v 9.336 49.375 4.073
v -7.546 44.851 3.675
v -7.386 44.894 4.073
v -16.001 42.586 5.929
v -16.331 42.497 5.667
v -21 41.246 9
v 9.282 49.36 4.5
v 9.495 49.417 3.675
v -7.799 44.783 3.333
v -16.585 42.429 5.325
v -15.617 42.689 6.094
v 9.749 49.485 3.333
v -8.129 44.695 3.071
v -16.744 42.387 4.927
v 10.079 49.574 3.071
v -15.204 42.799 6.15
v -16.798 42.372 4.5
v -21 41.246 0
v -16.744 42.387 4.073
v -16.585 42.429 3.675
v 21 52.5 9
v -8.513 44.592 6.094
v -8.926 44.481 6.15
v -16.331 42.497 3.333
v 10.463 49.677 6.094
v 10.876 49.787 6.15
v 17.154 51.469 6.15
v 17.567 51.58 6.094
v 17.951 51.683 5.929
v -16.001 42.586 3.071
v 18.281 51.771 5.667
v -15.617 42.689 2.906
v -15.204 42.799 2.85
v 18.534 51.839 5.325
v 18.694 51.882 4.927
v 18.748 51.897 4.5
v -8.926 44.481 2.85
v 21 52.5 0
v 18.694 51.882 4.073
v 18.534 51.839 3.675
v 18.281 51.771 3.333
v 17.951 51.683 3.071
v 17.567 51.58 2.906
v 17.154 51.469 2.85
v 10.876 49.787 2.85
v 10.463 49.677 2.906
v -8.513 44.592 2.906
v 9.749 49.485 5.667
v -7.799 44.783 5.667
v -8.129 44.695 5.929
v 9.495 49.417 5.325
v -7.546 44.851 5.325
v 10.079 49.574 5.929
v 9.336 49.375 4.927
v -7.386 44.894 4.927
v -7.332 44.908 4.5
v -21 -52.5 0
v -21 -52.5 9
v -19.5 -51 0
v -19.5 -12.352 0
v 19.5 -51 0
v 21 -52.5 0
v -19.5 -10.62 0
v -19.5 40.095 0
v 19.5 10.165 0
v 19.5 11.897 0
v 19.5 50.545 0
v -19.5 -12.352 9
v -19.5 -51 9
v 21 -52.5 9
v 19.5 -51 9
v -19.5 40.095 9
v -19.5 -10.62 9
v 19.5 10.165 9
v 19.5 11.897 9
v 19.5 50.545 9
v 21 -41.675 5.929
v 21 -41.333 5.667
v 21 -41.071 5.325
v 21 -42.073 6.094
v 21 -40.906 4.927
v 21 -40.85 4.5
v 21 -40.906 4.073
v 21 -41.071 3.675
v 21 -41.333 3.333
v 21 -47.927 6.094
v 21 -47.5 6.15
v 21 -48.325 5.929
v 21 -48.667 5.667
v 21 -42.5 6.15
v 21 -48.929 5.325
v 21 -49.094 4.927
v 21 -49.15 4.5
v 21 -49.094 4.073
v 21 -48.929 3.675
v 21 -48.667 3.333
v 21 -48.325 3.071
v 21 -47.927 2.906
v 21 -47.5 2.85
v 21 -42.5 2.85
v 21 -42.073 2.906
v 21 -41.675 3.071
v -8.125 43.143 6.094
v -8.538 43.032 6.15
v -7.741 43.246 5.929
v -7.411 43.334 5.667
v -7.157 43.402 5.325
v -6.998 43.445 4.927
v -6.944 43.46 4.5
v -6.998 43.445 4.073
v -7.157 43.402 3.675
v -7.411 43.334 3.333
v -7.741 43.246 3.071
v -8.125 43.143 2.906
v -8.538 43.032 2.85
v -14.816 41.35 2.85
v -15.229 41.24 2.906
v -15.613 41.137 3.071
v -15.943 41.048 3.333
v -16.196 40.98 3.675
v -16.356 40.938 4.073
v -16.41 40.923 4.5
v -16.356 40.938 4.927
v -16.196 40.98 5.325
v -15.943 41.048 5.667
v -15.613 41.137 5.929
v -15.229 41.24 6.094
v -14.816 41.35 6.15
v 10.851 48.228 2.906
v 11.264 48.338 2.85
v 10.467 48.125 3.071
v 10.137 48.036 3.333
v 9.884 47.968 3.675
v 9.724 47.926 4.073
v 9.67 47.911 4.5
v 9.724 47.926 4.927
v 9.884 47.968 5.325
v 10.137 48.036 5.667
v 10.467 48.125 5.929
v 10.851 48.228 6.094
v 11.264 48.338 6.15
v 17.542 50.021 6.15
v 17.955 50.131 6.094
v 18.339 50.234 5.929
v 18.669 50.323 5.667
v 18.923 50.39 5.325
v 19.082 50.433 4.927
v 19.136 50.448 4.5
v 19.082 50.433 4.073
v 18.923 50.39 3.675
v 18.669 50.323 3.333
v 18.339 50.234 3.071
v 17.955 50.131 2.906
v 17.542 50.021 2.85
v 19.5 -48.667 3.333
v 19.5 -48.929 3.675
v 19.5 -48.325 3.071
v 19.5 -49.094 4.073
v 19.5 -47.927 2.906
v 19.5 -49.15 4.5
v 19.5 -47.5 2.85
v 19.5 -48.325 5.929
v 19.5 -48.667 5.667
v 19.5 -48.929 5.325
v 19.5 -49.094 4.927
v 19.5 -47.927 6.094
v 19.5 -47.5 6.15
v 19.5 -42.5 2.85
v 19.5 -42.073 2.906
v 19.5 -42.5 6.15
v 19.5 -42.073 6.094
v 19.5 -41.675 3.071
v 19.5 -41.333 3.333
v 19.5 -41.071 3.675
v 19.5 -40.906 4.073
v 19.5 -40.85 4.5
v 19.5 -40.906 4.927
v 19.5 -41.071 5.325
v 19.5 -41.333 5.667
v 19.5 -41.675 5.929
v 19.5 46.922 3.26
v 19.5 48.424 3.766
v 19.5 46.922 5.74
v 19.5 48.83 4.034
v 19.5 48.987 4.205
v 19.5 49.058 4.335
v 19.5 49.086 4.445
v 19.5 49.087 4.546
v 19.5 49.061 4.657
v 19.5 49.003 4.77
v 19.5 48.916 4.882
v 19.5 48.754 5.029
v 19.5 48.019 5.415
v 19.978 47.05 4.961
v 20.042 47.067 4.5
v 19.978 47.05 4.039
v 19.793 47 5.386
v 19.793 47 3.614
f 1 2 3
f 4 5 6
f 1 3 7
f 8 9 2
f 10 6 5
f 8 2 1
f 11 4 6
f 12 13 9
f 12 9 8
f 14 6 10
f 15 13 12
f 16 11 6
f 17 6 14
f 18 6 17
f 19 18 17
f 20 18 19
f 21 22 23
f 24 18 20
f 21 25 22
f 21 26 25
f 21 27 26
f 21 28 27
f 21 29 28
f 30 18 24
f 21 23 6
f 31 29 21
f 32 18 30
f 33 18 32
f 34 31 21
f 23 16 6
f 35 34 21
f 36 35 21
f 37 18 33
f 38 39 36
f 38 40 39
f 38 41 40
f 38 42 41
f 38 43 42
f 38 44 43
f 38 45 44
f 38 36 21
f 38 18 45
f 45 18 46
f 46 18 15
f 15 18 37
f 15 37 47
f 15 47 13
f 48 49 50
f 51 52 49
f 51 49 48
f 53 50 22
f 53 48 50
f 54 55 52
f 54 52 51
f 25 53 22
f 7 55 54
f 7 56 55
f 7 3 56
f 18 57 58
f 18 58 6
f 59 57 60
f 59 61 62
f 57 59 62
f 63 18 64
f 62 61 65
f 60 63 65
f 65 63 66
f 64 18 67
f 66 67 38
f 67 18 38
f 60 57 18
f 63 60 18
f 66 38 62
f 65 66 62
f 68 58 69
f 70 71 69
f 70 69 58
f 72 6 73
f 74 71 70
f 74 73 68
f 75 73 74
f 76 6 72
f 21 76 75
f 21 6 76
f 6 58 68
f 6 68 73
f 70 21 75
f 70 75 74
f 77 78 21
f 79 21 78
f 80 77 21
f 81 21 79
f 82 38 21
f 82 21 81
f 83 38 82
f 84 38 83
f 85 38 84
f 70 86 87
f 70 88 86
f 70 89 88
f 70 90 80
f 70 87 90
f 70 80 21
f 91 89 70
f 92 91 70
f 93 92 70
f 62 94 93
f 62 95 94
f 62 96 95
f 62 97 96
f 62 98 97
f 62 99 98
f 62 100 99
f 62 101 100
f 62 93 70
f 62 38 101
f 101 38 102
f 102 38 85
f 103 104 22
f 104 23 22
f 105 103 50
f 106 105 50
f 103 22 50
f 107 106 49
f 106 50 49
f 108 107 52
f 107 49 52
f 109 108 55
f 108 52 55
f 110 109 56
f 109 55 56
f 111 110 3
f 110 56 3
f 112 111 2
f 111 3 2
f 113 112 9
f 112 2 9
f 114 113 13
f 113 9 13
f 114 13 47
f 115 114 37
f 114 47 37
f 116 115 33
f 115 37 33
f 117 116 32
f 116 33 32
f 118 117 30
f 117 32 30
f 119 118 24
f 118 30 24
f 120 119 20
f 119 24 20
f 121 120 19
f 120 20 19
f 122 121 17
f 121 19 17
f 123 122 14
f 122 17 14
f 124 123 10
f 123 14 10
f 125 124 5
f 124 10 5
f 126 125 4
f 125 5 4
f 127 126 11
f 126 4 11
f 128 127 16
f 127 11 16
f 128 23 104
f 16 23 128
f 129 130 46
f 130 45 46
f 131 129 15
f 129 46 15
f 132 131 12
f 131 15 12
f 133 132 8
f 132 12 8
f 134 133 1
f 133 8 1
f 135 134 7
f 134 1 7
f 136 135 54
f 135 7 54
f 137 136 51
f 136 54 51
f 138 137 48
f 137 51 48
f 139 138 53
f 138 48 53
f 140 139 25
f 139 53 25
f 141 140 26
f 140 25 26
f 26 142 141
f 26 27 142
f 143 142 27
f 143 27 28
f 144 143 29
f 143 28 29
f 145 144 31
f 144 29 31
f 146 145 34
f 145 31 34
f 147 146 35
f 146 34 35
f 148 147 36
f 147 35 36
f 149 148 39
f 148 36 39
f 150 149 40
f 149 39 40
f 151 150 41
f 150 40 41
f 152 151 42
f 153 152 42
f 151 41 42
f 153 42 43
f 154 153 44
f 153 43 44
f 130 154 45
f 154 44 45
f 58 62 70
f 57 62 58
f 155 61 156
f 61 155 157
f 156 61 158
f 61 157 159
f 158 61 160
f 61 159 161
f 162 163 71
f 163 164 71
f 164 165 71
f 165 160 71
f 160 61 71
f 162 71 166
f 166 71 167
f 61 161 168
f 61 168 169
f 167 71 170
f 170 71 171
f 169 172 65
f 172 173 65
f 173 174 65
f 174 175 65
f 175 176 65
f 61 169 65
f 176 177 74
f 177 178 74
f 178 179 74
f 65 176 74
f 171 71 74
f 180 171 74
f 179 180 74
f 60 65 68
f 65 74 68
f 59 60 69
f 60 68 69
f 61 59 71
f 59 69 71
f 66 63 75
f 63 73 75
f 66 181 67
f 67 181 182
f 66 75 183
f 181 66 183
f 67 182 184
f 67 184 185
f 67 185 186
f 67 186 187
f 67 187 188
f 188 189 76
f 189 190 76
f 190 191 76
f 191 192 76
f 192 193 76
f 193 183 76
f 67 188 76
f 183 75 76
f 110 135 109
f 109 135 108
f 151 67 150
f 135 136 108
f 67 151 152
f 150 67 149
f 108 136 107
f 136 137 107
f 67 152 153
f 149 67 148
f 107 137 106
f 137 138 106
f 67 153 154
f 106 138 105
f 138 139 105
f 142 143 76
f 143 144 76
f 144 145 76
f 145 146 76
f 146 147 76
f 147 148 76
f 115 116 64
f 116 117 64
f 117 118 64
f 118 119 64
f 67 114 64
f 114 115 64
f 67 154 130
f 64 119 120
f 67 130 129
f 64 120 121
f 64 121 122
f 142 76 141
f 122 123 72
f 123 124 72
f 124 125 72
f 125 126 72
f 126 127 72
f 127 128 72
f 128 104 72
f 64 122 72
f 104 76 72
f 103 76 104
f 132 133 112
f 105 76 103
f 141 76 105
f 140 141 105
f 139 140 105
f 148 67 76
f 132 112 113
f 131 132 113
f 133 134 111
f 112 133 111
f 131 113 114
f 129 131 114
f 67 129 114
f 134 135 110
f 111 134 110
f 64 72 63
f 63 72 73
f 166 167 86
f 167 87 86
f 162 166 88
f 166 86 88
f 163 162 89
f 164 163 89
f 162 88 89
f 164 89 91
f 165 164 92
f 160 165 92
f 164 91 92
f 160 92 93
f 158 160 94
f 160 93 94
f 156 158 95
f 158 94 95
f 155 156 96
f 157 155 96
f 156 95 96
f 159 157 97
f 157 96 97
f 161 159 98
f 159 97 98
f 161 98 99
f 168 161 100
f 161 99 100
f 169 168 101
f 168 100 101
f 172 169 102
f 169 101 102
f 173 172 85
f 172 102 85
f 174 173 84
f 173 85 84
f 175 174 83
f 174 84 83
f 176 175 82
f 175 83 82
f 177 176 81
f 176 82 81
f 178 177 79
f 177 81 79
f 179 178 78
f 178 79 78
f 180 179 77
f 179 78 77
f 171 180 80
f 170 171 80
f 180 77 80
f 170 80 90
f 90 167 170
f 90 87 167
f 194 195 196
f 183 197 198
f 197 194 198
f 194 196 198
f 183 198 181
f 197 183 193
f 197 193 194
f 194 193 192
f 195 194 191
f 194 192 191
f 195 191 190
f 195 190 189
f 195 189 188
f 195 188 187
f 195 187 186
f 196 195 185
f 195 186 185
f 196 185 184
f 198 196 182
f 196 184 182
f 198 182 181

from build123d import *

# Parameters (mm, degrees)
PAD_DEPTH       = 9
POCKET_DEPTH    = 10
POCKET001_DEPTH = 5
SKETCH003_R     = 1.6
POCKET002_DEPTH = 5
POCKET003_DEPTH = 2


with BuildPart() as part:
    # Sketch → Pad (new body)
    with BuildSketch(Plane.XY):
        Polygon((-21, 41.246133918), (21, 52.5), (21, -52.5), (-21, -52.5), align=None)
    extrude(amount=PAD_DEPTH)

    # Sketch001 → Pocket (cut)
    with BuildSketch(Plane.XY.offset(9)):
        Polygon((-19.5, 40.095143436), (-19.5, -10.619723875), (19.5, 11.8969366233), (19.5, 50.5451619407), align=None)
        Polygon((-19.5, -12.3517746826), (-19.5, -51), (19.5, -51), (19.5, 10.1648858158), align=None)
    extrude(amount=-POCKET_DEPTH, mode=Mode.SUBTRACT)

    # Sketch002 → Pocket001 (cut)
    with BuildSketch(Plane(origin=(-11.7182667397, 43.7331668494, 0), x_dir=(-0.9659258263, -0.2588190451, 0), z_dir=(-0.2588190451, 0.9659258263, 0))):
        with BuildLine():
            ThreePointArc((-2.8908426427, 6.15), (-4.5408426427, 4.5), (-2.8908426427, 2.85))
            Line((-2.8908426427, 2.85), (3.6091573573, 2.85))
            ThreePointArc((3.6091573573, 2.85), (5.2591573573, 4.5), (3.6091573573, 6.15))
            Line((-2.8908426427, 6.15), (3.6091573573, 6.15))
        make_face()
        with BuildLine():
            ThreePointArc((-29.8908426427, 6.15), (-31.5408426427, 4.5), (-29.8908426427, 2.85))
            Line((-29.8908426427, 2.85), (-23.3908426427, 2.85))
            ThreePointArc((-23.3908426427, 2.85), (-21.7408426427, 4.5), (-23.3908426427, 6.15))
            Line((-29.8908426427, 6.15), (-23.3908426427, 6.15))
        make_face()
    extrude(amount=-POCKET001_DEPTH, mode=Mode.SUBTRACT)

    # Sketch003 → Pocket002 (cut)
    with BuildSketch(Plane.XY.offset(9)):
        with Locations((37, -21.7740142833)):
            Circle(SKETCH003_R)
    extrude(amount=-POCKET002_DEPTH, mode=Mode.SUBTRACT)

    # Sketch004 → Pocket003 (cut)
    with BuildSketch(Plane.YZ.offset(21)):
        with BuildLine():
            ThreePointArc((-47.5, 6.15), (-49.15, 4.5), (-47.5, 2.85))
            Line((-47.5, 2.85), (-42.5, 2.85))
            ThreePointArc((-42.5, 2.85), (-40.85, 4.5), (-42.5, 6.15))
            Line((-47.5, 6.15), (-42.5, 6.15))
        make_face()
    extrude(amount=-POCKET003_DEPTH, mode=Mode.SUBTRACT)


solid = part.part
